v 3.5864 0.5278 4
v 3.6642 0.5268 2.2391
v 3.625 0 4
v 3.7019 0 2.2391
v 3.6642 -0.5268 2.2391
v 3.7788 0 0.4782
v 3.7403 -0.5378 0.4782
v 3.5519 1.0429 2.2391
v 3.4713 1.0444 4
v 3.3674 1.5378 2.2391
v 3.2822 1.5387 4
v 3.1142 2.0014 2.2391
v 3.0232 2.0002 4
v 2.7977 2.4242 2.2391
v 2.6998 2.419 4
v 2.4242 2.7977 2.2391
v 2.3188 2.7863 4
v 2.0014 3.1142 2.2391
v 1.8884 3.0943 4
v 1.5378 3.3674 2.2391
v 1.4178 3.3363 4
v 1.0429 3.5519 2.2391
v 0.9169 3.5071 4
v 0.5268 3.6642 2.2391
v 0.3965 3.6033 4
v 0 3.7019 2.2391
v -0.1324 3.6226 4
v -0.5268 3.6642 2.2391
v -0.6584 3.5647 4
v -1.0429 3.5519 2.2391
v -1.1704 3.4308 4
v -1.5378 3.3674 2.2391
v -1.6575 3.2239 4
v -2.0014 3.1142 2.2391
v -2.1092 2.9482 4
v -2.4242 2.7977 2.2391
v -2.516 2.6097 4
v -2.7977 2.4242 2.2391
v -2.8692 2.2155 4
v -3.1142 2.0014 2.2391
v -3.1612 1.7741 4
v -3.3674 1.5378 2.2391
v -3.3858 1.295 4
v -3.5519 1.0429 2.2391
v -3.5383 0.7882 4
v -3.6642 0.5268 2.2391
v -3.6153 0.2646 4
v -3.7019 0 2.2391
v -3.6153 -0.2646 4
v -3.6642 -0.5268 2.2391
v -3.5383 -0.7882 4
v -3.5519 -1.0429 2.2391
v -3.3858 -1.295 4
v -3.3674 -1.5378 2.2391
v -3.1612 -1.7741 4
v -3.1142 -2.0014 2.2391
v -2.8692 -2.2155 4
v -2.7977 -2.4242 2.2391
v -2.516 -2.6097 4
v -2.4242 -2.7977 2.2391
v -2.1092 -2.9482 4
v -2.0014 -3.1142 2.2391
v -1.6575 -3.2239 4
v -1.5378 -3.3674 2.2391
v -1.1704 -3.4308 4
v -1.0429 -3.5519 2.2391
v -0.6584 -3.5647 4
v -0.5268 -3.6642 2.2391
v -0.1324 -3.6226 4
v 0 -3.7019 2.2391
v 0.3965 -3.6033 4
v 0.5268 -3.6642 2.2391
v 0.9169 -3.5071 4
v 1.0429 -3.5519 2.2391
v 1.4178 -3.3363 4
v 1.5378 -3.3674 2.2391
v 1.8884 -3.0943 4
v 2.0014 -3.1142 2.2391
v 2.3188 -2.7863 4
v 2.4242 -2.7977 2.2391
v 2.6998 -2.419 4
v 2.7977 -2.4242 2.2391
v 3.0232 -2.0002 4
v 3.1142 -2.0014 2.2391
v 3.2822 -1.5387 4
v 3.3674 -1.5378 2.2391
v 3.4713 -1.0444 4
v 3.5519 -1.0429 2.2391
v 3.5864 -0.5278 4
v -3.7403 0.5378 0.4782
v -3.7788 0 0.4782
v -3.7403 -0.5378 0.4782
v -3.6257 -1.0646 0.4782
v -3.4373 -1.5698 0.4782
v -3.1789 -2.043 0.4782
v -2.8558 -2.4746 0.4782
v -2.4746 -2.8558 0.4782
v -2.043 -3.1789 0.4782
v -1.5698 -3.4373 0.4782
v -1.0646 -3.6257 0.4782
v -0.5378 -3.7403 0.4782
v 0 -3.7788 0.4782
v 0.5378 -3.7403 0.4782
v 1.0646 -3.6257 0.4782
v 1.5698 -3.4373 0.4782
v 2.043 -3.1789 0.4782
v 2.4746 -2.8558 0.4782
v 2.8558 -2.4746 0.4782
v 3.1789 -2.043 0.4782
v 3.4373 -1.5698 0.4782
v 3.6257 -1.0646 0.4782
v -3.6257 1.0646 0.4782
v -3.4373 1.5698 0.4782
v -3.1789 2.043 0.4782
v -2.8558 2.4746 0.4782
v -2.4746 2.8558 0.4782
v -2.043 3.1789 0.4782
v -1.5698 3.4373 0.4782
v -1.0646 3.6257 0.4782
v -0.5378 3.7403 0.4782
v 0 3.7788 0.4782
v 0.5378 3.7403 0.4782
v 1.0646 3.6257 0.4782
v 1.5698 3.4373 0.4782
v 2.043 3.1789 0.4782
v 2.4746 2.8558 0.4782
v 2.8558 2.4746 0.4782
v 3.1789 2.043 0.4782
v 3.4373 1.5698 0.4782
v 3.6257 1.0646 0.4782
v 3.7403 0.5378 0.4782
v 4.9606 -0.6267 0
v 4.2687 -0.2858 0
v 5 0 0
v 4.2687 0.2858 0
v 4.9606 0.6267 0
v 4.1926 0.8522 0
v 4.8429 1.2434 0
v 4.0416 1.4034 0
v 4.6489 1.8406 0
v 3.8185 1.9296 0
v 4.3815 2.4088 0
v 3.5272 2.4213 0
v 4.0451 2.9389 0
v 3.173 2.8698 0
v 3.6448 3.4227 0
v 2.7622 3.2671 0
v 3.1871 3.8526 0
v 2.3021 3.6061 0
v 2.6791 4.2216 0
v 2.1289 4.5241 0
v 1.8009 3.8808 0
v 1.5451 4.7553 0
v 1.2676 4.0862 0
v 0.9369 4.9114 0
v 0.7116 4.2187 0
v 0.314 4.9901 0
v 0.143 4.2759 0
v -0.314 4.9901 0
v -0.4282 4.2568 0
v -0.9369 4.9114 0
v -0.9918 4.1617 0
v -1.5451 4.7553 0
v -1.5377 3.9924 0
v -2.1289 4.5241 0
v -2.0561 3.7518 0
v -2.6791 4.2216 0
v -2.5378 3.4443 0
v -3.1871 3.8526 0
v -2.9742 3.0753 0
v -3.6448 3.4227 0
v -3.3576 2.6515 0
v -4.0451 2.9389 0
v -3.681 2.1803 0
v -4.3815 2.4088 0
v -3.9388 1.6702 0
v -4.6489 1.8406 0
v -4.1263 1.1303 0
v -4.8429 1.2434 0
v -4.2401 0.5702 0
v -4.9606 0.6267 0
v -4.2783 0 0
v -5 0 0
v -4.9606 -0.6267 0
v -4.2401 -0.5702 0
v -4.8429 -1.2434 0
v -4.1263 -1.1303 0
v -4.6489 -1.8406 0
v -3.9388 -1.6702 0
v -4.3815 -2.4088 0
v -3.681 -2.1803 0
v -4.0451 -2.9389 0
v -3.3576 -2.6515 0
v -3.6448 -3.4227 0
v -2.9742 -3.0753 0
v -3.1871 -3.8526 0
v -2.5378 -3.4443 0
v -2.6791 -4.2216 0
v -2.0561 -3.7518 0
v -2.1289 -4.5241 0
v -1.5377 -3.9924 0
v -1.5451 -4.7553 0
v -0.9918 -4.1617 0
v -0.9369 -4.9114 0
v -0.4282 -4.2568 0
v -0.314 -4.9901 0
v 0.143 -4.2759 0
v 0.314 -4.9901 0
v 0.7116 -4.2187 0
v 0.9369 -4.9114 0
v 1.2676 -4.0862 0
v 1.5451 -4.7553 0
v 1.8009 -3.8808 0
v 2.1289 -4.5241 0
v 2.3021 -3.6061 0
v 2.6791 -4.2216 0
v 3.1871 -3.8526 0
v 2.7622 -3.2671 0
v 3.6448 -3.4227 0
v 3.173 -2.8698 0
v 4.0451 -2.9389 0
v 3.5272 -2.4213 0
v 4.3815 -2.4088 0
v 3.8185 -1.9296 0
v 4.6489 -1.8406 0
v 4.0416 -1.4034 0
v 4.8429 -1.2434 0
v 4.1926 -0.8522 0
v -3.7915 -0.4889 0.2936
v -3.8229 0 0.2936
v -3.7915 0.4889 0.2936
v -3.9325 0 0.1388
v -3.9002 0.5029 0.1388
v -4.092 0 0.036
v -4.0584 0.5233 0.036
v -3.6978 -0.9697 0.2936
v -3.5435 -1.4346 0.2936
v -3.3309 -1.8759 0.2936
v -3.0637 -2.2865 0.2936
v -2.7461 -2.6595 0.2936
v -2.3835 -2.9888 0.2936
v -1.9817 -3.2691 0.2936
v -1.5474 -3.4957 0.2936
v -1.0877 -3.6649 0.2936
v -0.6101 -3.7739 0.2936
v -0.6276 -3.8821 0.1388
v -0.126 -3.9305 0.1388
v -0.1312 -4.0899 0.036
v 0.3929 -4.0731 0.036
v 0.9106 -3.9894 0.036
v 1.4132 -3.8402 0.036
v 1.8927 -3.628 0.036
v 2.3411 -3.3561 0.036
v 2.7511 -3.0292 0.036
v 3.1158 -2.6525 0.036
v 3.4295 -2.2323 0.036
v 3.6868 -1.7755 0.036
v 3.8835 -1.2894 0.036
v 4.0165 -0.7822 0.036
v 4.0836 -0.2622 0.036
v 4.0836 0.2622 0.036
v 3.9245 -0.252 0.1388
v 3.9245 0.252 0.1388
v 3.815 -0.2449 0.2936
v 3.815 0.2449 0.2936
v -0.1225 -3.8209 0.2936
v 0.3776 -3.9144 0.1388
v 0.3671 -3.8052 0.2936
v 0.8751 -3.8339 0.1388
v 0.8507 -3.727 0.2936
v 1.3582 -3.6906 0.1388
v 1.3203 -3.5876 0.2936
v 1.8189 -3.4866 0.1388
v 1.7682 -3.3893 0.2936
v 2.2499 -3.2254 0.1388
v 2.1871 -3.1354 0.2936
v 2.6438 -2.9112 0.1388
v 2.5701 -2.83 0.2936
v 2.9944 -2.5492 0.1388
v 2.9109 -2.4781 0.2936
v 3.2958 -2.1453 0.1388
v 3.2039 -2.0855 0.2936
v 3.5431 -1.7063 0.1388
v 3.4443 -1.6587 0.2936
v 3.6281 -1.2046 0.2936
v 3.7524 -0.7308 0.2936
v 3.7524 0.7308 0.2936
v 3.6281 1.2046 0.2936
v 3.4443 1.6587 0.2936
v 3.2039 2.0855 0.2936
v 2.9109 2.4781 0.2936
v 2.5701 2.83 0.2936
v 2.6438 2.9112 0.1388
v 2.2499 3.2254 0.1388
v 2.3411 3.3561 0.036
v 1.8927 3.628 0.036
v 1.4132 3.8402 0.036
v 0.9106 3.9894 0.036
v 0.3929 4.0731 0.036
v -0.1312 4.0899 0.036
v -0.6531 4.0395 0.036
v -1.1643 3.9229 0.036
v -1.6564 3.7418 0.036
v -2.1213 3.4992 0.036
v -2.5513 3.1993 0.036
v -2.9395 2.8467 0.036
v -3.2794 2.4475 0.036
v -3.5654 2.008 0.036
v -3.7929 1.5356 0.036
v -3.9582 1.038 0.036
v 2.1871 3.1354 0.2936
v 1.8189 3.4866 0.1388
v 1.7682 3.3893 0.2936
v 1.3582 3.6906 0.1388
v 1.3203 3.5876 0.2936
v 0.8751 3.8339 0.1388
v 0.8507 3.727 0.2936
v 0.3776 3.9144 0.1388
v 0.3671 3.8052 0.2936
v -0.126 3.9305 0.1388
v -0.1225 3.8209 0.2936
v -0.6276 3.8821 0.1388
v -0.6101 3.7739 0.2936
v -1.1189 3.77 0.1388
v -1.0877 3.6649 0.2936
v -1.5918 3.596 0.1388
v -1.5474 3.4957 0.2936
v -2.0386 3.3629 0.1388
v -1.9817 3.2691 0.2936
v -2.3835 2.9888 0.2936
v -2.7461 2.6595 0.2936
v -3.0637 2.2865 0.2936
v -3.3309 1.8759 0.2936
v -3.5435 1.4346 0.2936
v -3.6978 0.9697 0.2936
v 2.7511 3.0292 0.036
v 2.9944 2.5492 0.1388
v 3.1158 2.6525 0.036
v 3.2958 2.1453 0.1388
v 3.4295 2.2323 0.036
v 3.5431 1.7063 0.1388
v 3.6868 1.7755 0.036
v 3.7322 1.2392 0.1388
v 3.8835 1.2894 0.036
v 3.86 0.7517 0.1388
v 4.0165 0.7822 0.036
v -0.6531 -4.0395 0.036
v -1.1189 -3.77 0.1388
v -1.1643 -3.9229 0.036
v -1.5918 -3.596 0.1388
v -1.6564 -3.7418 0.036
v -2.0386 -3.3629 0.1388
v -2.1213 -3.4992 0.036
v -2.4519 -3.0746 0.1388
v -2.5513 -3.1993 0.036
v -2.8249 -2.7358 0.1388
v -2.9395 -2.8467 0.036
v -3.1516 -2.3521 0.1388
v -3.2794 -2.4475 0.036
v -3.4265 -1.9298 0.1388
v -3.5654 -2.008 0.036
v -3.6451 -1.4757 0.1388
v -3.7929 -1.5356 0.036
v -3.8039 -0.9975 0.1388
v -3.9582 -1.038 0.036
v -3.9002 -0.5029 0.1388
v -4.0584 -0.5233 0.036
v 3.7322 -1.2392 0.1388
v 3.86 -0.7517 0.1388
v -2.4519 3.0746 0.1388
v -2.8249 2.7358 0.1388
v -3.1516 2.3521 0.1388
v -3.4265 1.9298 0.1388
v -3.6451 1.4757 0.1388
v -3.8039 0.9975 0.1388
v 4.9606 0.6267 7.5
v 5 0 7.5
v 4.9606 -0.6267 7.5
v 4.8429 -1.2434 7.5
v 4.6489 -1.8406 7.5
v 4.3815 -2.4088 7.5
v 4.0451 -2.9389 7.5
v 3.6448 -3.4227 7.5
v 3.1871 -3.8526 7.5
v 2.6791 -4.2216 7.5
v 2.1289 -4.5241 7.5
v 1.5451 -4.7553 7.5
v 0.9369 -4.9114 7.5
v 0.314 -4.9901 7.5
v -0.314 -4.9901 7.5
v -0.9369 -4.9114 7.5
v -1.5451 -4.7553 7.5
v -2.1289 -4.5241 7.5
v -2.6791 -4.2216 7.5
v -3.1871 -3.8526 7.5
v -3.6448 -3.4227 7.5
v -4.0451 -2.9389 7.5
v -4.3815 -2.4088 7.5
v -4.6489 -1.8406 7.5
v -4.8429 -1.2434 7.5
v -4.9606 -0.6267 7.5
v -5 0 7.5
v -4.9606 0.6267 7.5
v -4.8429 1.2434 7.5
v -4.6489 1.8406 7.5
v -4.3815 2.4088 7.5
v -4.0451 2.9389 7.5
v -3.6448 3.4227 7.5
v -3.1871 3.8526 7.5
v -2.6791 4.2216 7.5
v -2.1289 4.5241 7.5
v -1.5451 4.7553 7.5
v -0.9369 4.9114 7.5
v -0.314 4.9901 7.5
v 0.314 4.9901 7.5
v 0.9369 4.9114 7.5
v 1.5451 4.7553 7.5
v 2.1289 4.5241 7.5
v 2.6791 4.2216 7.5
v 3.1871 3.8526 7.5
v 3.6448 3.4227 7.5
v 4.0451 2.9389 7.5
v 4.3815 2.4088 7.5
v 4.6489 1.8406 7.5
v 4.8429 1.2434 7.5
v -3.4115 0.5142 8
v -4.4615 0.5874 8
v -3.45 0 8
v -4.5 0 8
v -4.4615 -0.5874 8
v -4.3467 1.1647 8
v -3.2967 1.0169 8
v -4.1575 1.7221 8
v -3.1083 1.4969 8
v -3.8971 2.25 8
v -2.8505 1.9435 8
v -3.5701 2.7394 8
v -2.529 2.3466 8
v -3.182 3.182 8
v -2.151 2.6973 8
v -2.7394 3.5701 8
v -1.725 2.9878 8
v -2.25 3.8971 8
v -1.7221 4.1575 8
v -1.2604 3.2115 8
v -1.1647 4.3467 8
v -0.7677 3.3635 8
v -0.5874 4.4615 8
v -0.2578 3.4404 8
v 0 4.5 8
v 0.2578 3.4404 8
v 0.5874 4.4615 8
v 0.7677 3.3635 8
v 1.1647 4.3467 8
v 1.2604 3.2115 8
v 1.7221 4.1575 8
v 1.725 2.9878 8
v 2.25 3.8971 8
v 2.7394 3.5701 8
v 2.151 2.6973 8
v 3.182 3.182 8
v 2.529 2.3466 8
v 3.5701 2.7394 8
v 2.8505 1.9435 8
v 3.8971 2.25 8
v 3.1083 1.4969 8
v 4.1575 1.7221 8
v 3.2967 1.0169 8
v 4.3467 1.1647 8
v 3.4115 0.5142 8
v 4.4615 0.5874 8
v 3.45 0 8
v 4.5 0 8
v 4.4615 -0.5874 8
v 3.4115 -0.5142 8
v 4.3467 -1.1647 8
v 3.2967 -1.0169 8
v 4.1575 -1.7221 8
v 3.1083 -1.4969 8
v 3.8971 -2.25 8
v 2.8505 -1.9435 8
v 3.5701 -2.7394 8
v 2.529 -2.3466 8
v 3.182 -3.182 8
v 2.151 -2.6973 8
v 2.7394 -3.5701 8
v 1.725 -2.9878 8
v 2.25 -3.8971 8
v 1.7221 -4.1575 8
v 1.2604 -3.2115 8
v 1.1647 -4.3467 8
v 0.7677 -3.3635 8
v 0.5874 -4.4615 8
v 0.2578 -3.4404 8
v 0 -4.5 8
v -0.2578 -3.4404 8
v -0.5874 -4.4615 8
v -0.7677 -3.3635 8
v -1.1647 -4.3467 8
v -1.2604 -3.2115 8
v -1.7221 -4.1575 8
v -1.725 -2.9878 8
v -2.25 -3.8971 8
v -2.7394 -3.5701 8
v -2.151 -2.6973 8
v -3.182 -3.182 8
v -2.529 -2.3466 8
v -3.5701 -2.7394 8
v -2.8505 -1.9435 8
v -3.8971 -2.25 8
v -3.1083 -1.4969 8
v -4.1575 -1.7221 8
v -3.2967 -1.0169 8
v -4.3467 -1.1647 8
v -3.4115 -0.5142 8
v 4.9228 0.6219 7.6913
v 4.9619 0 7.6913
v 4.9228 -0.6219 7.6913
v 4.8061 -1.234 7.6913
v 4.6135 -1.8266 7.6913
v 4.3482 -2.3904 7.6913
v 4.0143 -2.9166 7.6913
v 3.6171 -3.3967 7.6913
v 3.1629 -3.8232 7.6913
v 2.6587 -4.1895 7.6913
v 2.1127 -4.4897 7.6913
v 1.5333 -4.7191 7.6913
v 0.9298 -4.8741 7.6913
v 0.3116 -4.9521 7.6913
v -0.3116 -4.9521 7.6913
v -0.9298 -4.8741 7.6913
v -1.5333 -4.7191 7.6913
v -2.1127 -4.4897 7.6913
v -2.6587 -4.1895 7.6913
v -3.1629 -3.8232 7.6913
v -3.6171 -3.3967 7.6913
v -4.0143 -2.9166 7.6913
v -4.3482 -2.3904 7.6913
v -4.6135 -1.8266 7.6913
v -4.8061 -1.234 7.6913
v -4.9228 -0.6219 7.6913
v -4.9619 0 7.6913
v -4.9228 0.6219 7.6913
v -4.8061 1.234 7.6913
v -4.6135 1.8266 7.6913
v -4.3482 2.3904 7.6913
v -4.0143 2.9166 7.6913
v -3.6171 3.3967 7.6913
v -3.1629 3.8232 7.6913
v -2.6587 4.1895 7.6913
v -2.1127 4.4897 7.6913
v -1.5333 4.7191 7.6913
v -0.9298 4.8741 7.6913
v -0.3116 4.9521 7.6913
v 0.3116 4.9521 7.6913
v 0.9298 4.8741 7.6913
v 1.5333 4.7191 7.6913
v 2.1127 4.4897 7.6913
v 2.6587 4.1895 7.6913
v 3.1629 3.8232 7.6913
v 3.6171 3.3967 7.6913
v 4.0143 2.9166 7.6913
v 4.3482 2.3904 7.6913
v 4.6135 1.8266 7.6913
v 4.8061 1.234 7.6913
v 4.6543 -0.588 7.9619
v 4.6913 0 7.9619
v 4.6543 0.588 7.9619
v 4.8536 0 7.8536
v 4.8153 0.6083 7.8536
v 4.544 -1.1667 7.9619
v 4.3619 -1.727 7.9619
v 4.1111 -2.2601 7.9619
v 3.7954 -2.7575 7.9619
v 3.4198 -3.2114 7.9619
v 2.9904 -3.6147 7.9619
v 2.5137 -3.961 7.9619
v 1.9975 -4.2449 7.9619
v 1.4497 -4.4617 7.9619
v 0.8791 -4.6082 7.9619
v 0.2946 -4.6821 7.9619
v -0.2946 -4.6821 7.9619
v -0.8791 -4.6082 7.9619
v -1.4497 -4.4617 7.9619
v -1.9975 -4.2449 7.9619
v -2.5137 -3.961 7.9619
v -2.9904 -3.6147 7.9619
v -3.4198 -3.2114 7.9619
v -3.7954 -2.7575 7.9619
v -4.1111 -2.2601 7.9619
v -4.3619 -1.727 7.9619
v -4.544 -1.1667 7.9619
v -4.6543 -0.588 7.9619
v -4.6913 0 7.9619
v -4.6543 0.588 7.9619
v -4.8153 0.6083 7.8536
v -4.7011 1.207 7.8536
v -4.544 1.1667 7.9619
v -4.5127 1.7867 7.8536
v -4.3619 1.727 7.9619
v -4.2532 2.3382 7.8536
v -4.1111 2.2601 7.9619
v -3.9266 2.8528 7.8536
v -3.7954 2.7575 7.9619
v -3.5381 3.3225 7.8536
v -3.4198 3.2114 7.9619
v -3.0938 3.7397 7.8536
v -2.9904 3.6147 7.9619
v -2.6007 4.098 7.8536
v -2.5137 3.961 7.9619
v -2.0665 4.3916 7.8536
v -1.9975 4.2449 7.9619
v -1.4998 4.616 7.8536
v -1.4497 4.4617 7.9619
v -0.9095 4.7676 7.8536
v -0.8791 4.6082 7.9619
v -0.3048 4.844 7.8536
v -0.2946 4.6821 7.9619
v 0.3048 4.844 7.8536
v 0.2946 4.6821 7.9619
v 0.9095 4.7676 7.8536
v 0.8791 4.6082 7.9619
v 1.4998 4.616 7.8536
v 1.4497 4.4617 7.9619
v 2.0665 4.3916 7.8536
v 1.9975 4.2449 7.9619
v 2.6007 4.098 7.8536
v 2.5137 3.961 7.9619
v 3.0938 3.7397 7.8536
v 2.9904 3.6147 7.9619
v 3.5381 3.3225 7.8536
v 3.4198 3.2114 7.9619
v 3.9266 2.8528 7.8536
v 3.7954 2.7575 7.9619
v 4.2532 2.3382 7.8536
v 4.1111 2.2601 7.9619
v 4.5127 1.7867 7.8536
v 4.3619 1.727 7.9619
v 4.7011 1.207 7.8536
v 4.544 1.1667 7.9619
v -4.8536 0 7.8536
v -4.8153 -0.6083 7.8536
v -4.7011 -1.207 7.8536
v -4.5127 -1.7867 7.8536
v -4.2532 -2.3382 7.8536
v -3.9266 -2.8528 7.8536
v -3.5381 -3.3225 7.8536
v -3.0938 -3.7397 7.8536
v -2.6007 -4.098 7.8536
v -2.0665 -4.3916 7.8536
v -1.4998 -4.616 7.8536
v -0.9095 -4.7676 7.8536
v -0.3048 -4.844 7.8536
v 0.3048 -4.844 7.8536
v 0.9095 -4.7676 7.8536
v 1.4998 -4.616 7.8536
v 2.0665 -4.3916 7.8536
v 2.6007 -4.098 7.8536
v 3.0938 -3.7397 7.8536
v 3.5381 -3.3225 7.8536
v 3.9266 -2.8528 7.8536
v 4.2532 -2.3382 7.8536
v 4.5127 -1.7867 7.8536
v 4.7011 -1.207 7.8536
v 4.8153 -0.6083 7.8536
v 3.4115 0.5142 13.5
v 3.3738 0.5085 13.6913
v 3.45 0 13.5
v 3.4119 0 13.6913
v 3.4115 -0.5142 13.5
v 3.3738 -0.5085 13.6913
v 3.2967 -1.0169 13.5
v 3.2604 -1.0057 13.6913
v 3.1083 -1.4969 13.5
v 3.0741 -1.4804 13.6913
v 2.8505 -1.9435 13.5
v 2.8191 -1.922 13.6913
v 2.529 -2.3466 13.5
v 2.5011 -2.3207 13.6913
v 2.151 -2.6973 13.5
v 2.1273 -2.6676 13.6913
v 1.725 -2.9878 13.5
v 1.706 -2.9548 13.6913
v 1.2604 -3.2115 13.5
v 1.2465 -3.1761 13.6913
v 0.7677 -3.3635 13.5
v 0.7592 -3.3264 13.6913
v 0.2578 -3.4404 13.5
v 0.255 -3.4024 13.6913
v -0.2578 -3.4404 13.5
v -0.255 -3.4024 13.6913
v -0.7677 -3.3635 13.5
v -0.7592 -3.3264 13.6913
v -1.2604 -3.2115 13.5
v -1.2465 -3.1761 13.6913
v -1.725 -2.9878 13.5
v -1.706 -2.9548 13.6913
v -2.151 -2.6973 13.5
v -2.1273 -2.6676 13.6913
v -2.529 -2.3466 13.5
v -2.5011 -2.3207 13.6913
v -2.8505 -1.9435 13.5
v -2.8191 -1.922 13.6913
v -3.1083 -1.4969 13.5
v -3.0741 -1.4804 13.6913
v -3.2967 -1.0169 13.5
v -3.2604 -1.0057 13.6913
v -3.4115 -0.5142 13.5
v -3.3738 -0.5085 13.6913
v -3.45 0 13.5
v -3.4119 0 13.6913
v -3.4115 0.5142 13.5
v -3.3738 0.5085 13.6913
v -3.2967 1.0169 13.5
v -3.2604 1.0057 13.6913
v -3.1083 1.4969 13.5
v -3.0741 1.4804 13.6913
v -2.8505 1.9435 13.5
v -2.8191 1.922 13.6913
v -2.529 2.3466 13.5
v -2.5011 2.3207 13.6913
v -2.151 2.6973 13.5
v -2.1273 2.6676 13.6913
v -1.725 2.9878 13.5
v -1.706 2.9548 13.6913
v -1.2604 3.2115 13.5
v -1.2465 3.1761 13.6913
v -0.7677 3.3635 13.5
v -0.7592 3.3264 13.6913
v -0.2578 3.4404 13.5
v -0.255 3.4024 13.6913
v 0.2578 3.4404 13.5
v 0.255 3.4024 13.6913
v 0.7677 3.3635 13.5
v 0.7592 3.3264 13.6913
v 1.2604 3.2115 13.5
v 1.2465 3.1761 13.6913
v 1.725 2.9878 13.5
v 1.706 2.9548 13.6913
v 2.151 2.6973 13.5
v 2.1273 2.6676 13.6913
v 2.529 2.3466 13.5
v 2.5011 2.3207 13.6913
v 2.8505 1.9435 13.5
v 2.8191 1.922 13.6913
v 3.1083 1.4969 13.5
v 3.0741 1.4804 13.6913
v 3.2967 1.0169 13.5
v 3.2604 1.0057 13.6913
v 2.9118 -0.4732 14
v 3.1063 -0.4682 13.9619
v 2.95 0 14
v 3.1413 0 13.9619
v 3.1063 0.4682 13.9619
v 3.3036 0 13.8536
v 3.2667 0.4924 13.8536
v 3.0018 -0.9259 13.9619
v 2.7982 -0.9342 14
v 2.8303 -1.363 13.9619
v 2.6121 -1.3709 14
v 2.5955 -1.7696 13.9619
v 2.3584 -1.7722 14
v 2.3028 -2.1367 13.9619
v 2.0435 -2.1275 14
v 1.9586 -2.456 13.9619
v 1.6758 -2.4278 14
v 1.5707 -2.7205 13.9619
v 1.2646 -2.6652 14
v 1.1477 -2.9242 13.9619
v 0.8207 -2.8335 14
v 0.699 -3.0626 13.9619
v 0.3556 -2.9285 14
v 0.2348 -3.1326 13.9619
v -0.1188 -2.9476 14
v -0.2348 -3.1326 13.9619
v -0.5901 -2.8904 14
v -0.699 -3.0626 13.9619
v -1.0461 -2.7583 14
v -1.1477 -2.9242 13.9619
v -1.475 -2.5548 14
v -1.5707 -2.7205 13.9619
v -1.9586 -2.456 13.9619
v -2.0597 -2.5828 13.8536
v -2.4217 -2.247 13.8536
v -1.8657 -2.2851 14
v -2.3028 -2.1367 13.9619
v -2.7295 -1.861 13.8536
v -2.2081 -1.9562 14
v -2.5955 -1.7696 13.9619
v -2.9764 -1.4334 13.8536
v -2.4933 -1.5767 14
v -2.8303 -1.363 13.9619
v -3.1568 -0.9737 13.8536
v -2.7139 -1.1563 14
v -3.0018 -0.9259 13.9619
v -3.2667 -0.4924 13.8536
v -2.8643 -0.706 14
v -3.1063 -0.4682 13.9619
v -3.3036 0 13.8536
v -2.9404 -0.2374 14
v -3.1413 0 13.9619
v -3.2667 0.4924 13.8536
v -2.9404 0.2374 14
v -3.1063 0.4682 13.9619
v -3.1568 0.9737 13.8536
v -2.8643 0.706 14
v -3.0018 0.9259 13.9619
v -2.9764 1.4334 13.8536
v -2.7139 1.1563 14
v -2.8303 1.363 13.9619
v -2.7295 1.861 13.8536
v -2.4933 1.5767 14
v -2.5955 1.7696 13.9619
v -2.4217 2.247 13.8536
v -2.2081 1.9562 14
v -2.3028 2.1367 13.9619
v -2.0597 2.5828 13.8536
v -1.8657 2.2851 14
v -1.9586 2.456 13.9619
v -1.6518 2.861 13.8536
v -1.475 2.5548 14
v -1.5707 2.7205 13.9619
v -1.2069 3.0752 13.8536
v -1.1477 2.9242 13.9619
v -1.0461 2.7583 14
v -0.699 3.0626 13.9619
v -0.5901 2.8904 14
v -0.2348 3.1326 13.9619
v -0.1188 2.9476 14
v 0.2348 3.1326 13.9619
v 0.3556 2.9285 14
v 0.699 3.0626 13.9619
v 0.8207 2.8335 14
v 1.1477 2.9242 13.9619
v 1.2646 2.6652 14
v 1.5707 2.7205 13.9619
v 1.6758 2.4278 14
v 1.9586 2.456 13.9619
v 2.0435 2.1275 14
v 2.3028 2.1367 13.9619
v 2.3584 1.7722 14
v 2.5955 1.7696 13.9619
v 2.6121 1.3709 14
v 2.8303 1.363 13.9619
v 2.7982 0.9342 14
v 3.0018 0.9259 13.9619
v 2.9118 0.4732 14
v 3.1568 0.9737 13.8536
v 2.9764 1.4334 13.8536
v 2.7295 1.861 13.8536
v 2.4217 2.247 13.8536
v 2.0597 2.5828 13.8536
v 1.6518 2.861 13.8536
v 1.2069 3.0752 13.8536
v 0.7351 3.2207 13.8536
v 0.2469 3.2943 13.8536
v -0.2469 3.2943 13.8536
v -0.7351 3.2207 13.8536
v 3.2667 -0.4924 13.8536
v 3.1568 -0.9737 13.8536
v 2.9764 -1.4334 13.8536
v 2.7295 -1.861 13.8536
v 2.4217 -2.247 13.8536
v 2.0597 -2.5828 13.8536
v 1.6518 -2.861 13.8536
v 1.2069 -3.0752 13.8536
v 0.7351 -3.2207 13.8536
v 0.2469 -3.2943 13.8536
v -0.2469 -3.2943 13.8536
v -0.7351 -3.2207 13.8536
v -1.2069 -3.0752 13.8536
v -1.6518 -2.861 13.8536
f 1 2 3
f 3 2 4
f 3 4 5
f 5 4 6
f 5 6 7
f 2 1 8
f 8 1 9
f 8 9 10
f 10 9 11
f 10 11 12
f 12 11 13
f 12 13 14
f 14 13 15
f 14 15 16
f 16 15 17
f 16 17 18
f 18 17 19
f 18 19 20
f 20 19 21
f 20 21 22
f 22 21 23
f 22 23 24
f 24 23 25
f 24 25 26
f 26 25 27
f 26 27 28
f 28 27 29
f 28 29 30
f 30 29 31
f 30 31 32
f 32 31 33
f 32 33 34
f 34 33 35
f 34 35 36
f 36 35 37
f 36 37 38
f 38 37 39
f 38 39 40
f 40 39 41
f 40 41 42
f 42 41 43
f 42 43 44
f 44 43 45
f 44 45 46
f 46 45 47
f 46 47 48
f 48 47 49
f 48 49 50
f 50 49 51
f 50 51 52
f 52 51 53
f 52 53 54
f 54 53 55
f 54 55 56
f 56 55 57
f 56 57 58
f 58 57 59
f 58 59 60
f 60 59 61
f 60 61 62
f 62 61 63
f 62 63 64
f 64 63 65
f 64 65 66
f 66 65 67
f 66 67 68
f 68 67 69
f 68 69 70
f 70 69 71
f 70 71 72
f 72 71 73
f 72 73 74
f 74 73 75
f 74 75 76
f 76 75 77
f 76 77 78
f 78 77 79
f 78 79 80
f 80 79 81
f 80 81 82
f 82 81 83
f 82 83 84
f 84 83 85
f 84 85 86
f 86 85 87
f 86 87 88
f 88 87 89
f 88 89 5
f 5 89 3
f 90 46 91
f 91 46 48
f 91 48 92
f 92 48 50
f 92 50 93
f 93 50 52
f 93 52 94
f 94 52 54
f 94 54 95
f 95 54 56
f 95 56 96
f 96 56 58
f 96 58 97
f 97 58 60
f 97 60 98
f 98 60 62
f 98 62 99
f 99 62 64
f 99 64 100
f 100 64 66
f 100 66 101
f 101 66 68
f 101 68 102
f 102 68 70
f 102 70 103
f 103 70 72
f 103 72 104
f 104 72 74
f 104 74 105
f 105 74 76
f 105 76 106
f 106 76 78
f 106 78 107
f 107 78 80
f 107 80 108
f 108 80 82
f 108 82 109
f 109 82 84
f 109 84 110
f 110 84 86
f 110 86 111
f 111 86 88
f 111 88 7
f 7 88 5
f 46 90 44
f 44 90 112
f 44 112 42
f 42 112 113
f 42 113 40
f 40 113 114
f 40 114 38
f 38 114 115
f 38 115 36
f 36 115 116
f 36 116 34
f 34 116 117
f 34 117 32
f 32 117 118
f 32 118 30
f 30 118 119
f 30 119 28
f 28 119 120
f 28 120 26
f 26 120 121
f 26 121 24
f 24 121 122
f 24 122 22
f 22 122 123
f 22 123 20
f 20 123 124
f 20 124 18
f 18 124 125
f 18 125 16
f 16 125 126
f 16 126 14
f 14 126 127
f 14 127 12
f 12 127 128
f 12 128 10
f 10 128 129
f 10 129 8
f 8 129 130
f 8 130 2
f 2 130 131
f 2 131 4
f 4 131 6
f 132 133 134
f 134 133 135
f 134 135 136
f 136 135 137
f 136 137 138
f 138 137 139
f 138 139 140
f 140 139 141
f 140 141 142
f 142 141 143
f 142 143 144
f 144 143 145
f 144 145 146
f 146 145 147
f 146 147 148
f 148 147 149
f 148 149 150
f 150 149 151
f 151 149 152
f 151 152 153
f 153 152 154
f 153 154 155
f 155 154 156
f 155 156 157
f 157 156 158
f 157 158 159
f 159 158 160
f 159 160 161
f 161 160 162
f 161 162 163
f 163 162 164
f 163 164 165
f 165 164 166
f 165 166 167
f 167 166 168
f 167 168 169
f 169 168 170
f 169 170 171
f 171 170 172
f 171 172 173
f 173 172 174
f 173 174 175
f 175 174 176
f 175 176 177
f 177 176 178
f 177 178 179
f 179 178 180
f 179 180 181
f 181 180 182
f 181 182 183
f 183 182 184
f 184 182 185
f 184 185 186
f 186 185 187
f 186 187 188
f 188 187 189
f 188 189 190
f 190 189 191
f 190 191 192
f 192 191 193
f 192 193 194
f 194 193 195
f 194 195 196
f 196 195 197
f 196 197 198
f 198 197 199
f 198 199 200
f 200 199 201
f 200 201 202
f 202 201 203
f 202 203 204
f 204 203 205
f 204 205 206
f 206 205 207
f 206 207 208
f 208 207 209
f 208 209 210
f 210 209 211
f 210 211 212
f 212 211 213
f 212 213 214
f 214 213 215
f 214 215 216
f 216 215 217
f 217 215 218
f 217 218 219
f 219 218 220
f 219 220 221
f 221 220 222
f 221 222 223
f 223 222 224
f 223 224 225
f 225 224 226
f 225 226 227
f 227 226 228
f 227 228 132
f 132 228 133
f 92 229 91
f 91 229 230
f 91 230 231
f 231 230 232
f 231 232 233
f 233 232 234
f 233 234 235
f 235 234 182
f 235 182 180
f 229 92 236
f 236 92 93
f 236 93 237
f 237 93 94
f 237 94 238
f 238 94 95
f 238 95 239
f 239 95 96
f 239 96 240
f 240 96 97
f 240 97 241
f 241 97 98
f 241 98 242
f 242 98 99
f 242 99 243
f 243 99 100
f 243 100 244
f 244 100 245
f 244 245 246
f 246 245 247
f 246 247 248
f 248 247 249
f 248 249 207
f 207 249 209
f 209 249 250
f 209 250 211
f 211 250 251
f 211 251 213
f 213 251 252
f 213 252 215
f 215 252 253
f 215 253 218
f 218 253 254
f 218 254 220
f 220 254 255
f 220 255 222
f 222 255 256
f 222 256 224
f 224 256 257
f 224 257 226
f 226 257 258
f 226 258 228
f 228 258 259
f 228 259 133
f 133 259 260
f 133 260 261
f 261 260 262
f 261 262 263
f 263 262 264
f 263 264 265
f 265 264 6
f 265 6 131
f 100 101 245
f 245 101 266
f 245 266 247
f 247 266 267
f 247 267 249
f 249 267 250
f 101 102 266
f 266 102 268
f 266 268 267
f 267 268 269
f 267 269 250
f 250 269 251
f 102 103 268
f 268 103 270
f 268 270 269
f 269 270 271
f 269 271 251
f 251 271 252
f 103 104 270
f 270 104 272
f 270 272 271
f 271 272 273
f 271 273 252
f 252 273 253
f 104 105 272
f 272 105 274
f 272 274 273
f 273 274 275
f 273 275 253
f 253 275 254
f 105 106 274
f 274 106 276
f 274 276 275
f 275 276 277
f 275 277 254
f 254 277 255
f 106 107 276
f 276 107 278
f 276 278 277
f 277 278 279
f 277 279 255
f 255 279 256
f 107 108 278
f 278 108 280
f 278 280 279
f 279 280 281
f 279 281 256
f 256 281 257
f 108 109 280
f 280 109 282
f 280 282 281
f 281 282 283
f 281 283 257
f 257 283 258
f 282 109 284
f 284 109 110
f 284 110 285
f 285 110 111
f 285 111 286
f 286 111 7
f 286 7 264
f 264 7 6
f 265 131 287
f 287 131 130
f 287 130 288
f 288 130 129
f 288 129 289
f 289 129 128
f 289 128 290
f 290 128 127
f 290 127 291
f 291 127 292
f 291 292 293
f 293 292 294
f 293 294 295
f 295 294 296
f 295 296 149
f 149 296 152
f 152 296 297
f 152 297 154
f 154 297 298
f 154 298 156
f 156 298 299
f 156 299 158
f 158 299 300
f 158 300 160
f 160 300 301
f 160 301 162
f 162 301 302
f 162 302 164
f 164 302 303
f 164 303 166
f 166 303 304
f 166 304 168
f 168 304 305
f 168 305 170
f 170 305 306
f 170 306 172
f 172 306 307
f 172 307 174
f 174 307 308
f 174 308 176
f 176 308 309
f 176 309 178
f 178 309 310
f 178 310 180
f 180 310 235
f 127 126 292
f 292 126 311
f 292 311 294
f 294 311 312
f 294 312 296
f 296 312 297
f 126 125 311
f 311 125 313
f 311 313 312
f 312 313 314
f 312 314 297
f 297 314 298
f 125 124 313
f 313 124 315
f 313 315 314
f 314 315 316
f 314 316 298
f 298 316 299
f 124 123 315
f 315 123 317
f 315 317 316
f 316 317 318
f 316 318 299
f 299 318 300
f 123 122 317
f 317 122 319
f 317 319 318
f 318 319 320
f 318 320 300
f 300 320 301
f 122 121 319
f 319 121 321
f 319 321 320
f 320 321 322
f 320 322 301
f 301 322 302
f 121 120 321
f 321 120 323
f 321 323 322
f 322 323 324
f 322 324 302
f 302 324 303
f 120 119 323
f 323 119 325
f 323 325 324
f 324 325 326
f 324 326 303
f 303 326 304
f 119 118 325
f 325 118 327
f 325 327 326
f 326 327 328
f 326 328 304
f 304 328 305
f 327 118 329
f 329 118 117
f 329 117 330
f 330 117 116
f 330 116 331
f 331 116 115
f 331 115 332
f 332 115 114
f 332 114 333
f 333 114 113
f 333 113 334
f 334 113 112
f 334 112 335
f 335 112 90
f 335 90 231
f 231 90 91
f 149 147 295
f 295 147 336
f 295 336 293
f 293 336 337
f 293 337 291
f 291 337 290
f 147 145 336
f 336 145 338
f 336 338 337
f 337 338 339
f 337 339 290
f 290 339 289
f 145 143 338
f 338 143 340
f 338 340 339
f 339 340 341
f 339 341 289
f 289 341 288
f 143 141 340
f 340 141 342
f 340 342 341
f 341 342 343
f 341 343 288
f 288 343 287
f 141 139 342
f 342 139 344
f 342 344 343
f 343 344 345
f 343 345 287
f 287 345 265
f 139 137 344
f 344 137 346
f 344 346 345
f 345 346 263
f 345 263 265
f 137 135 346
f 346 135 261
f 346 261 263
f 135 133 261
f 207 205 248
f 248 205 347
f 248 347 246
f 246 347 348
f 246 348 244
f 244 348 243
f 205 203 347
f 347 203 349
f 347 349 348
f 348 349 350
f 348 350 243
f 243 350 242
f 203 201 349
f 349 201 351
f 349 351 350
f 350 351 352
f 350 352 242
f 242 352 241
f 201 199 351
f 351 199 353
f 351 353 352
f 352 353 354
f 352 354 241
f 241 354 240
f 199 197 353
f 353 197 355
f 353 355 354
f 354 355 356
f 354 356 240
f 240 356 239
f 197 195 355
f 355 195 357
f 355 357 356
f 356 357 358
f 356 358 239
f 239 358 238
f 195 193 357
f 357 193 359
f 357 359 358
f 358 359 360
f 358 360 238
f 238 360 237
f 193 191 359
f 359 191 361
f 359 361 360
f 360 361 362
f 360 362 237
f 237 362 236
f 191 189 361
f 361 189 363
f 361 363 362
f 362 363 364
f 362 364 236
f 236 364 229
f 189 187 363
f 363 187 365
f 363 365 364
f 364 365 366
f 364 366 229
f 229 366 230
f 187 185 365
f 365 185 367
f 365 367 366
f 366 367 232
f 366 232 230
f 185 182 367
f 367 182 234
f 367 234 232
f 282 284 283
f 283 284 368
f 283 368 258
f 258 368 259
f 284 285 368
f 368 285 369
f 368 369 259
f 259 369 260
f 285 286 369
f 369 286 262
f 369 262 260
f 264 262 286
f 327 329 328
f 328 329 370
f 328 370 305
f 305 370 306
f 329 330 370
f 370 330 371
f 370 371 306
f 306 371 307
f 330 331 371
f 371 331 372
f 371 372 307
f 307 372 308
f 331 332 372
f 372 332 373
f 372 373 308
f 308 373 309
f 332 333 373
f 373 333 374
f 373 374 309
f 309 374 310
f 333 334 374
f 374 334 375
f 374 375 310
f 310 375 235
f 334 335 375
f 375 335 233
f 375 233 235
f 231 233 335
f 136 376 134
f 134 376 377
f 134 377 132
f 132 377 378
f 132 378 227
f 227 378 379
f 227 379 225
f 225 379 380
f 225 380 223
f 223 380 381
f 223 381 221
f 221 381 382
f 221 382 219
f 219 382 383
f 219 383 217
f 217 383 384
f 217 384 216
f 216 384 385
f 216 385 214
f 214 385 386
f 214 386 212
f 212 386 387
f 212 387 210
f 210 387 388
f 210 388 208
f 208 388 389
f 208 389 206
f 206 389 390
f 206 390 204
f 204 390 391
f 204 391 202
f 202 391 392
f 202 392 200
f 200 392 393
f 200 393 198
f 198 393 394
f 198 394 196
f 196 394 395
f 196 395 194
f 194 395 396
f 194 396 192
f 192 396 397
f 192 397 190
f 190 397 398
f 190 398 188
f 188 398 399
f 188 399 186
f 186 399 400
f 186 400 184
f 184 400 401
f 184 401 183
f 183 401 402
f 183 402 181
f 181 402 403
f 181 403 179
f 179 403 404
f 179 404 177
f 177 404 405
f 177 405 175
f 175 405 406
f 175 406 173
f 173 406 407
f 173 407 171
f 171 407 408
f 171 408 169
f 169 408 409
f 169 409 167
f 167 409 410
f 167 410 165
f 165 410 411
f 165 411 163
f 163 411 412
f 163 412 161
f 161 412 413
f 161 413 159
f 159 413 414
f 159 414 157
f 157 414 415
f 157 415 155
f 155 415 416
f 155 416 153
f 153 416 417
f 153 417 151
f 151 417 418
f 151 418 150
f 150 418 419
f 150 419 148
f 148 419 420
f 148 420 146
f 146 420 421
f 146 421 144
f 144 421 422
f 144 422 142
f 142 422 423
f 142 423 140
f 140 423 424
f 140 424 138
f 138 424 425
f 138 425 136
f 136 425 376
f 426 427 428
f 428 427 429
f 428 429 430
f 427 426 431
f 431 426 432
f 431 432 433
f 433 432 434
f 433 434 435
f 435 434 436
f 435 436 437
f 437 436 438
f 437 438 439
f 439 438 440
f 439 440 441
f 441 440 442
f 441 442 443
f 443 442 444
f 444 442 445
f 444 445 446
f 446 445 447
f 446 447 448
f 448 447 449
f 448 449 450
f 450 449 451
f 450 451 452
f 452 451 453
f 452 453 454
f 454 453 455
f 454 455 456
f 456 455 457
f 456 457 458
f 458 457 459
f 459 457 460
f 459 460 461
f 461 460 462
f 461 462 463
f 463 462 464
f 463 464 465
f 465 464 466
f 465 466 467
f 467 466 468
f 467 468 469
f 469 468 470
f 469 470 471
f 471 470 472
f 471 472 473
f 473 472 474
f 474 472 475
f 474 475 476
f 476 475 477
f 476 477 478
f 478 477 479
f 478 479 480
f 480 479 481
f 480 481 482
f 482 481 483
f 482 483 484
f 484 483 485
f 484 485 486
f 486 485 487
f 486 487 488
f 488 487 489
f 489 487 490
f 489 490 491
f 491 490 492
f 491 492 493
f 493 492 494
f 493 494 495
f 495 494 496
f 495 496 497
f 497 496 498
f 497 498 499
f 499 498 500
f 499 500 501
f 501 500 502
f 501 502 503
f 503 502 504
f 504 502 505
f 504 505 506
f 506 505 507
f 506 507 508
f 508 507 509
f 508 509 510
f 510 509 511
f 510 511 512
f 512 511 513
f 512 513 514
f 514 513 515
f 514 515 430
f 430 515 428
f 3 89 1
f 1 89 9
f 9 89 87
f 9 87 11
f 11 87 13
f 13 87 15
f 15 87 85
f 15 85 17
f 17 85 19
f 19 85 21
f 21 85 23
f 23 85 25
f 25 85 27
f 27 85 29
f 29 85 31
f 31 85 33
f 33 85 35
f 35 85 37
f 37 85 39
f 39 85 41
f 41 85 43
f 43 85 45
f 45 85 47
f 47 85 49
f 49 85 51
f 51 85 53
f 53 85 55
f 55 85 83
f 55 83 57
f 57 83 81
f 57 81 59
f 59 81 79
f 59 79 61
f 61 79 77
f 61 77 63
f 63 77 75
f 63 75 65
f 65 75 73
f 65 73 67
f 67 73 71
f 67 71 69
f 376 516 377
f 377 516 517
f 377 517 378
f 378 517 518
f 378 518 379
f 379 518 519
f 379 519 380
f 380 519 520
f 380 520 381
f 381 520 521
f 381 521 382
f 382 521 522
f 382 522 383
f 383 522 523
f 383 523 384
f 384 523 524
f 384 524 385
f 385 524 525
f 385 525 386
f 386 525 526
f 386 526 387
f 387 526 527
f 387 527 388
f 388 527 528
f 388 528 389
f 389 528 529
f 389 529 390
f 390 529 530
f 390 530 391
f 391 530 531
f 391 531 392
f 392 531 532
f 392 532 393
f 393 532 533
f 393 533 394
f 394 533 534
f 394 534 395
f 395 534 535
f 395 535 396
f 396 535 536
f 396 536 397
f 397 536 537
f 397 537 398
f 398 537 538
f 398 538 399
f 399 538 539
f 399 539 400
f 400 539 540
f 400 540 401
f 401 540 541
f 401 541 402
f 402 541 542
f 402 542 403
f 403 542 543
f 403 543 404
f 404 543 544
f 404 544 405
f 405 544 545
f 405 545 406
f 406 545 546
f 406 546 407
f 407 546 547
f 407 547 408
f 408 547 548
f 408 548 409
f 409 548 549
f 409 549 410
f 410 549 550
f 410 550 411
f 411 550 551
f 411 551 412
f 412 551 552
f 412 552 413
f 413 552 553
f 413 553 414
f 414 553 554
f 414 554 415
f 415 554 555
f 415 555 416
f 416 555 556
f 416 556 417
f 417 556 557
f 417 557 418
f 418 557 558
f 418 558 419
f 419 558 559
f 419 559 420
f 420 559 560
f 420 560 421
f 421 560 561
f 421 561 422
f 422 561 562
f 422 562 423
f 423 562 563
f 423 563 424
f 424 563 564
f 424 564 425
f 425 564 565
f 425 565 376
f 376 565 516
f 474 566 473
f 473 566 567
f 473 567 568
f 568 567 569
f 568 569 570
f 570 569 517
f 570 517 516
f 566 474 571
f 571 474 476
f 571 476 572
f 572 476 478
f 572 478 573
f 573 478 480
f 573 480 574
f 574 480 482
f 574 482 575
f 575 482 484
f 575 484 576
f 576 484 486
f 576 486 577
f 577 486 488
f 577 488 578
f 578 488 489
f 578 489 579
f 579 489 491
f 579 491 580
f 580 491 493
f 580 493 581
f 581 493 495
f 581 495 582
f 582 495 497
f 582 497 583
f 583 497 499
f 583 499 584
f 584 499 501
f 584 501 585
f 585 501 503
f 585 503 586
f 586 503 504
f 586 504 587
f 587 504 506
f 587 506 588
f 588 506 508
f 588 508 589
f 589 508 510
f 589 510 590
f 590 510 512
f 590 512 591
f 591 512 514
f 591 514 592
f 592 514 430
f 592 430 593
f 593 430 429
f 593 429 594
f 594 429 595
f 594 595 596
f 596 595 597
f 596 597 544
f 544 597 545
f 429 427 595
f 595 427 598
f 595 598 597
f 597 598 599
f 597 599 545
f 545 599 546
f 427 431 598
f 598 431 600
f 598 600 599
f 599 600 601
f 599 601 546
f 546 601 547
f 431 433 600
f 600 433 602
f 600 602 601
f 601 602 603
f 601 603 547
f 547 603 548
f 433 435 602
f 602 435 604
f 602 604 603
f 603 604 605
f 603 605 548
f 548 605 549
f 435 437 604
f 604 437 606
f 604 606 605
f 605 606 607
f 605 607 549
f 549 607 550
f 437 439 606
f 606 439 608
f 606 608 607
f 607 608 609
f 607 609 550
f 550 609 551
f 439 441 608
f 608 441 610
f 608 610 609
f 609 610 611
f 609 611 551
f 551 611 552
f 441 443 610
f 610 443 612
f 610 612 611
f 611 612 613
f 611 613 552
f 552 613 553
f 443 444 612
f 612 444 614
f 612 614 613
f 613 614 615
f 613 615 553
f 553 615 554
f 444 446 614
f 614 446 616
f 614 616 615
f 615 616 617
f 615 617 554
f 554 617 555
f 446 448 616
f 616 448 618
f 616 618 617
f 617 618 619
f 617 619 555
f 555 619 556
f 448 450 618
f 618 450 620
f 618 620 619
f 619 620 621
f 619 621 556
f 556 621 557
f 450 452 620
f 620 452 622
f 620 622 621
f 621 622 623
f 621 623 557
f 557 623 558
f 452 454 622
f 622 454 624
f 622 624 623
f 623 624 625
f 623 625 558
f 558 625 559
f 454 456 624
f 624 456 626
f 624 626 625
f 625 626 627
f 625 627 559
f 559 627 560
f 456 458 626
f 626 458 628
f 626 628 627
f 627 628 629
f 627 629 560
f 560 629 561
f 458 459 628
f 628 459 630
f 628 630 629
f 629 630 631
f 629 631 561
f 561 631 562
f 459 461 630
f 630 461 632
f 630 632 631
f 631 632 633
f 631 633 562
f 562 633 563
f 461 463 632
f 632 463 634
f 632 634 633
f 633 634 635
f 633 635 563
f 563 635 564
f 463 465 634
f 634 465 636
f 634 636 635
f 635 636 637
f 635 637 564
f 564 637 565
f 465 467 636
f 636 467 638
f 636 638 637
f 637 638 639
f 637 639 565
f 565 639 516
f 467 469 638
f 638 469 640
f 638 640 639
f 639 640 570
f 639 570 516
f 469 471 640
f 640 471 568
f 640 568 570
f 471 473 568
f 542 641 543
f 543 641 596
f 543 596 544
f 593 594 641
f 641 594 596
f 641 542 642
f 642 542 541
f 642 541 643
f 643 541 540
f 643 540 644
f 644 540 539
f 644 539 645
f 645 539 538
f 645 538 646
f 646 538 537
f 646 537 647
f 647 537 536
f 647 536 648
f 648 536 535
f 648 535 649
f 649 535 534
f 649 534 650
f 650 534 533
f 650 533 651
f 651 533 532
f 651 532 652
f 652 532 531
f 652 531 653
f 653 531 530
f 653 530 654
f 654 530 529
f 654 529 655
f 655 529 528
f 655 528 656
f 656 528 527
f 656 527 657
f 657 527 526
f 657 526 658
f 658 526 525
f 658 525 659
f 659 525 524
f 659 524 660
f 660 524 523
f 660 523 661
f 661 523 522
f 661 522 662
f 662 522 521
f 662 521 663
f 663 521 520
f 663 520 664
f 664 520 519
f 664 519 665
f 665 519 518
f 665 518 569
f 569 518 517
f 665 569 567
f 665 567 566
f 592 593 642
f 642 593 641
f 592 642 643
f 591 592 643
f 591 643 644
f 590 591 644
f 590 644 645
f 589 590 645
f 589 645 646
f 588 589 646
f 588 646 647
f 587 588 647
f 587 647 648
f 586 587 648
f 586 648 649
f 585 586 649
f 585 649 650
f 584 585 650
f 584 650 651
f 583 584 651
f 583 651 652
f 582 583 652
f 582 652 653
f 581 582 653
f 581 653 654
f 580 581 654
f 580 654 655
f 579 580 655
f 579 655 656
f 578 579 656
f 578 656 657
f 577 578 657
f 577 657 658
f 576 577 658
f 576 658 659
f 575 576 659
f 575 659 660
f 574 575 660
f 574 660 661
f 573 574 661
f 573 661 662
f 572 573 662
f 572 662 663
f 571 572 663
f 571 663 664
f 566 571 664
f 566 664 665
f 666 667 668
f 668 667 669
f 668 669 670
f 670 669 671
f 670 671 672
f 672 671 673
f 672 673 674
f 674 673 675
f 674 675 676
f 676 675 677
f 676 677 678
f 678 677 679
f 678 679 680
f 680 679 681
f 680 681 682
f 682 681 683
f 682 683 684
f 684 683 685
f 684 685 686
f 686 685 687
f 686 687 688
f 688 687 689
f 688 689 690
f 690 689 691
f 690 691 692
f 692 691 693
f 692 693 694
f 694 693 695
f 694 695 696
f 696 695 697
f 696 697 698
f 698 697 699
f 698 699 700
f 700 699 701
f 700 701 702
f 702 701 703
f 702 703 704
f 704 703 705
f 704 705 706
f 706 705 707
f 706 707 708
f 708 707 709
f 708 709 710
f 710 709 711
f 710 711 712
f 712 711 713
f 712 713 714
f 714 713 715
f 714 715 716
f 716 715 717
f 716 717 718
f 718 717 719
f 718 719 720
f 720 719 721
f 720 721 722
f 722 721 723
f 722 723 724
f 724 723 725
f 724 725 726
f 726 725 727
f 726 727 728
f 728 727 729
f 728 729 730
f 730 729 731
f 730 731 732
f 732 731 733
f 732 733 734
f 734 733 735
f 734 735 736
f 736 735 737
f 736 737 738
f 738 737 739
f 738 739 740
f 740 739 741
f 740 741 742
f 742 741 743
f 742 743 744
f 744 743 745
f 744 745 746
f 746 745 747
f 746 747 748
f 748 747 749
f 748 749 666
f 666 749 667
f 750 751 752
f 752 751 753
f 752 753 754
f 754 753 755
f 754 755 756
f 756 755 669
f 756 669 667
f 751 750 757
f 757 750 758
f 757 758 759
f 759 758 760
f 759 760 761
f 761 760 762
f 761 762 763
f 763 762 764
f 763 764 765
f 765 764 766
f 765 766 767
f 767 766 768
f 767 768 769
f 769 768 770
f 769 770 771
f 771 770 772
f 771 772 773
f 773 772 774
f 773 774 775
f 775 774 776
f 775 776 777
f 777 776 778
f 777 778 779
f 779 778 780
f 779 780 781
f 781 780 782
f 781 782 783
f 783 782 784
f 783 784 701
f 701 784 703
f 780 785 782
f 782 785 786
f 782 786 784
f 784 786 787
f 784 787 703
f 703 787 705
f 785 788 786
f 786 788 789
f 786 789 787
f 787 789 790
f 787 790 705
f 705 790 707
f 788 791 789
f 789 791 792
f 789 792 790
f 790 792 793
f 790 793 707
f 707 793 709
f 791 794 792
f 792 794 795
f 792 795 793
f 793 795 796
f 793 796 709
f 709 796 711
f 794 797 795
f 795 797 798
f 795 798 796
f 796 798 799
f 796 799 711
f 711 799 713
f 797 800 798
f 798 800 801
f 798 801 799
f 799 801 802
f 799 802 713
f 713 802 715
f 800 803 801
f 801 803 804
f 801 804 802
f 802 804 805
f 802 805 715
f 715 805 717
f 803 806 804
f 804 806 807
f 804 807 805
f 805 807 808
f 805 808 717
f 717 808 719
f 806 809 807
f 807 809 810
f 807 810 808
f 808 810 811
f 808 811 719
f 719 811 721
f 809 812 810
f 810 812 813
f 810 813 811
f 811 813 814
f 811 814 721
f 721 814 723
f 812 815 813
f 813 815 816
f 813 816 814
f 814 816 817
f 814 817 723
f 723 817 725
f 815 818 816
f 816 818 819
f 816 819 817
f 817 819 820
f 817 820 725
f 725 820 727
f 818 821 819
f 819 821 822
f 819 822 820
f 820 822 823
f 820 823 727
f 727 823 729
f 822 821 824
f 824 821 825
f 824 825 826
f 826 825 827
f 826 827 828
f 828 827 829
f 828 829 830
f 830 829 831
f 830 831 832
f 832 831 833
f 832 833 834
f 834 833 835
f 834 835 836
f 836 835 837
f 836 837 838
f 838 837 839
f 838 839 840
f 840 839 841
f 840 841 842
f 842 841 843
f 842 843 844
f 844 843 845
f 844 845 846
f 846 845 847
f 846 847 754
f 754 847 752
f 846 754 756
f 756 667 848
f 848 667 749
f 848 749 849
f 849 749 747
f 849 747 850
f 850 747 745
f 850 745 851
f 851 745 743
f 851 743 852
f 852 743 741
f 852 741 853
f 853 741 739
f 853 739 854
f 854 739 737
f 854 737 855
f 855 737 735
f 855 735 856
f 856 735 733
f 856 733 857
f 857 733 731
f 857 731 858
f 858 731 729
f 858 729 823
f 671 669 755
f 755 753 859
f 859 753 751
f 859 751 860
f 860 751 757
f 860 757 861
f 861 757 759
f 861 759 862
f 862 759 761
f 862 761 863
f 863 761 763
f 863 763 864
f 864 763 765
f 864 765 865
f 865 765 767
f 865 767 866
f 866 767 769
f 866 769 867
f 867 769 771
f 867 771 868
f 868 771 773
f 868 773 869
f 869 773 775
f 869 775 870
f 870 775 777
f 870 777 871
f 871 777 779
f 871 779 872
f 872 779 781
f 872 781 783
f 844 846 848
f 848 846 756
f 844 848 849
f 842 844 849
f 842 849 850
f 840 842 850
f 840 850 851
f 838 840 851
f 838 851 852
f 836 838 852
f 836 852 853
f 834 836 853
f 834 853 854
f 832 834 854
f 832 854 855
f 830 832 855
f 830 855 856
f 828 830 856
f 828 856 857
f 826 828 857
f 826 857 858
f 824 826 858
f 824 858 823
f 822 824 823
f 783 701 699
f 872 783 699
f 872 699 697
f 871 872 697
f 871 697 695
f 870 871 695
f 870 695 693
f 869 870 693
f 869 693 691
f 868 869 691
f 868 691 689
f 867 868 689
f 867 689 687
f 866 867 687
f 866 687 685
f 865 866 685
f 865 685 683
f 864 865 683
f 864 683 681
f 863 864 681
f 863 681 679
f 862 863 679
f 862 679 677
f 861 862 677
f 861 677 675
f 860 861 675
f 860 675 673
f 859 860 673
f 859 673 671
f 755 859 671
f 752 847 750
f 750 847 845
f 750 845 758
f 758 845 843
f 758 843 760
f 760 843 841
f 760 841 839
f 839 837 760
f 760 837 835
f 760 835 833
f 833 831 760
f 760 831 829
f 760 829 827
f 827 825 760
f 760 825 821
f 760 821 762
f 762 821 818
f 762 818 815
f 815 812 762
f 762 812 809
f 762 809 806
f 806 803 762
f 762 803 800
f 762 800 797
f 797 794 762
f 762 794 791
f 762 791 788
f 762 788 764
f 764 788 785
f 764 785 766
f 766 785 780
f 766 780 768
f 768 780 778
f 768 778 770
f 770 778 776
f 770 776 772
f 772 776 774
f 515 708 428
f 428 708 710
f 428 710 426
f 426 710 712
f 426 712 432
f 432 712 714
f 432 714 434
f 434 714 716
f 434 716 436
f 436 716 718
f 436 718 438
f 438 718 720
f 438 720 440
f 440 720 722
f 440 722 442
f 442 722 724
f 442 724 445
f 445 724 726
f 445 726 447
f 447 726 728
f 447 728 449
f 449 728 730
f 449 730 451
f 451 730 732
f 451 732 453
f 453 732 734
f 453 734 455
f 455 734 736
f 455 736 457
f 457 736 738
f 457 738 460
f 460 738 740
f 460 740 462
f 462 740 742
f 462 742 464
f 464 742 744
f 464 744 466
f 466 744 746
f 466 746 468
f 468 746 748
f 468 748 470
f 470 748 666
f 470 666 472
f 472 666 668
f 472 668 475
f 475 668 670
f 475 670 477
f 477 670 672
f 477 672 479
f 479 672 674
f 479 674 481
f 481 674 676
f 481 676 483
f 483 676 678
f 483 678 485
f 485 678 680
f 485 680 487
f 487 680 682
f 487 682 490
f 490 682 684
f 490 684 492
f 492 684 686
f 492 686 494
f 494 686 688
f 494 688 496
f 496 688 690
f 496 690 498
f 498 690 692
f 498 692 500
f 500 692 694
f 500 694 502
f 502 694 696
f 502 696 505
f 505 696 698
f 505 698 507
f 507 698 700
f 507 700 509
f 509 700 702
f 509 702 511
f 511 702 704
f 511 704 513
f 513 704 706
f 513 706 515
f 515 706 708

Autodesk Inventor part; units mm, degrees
ref_plane "YZ Plane" through (0, 0, 0) normal (1, 0, 0) x (0, 1, 0)
ref_plane "XZ Plane" through (0, 0, 0) normal (0, 1, 0) x (-1, 0, 0)
ref_plane "XY Plane" through (0, 0, 0) normal (0, 0, 1) x (1, 0, 0)
sketch "Sketch1" plane through (0, 0, 0) normal (0, 0, 1) x (1, 0, 0)
  circle A0 centre (0, 0) radius 5
  circle A1 centre (0, 0) radius 3.45
  circle A2 centre (0, 0) radius 3.625
  dimension "d0" = 10
  dimension "d1" = 6.9
  dimension "d2" = 7.25
extrude "Extrusion1" add sketch "Sketch1" along normal blind 8 contours A0 | A1 | A2
extrude "Extrusion2" add sketch "Sketch1" along normal blind 14 contours A1
extrude "Extrusion3" cut sketch "Sketch1" along normal blind 4 contours A1 | A2
draft "FaceDraft1" angle 2.5 pull direction (0, 0, -1) faces at (3.6132, -0.2917, 2.6667) fixed edges at (-3.625, 0, 4)
fillet "Fillet1" radius 0.5 3 edges at (-3.45, 0, 14) (-5, 0, 8) (-3.7996, 0, 0)
properties part number "button"
